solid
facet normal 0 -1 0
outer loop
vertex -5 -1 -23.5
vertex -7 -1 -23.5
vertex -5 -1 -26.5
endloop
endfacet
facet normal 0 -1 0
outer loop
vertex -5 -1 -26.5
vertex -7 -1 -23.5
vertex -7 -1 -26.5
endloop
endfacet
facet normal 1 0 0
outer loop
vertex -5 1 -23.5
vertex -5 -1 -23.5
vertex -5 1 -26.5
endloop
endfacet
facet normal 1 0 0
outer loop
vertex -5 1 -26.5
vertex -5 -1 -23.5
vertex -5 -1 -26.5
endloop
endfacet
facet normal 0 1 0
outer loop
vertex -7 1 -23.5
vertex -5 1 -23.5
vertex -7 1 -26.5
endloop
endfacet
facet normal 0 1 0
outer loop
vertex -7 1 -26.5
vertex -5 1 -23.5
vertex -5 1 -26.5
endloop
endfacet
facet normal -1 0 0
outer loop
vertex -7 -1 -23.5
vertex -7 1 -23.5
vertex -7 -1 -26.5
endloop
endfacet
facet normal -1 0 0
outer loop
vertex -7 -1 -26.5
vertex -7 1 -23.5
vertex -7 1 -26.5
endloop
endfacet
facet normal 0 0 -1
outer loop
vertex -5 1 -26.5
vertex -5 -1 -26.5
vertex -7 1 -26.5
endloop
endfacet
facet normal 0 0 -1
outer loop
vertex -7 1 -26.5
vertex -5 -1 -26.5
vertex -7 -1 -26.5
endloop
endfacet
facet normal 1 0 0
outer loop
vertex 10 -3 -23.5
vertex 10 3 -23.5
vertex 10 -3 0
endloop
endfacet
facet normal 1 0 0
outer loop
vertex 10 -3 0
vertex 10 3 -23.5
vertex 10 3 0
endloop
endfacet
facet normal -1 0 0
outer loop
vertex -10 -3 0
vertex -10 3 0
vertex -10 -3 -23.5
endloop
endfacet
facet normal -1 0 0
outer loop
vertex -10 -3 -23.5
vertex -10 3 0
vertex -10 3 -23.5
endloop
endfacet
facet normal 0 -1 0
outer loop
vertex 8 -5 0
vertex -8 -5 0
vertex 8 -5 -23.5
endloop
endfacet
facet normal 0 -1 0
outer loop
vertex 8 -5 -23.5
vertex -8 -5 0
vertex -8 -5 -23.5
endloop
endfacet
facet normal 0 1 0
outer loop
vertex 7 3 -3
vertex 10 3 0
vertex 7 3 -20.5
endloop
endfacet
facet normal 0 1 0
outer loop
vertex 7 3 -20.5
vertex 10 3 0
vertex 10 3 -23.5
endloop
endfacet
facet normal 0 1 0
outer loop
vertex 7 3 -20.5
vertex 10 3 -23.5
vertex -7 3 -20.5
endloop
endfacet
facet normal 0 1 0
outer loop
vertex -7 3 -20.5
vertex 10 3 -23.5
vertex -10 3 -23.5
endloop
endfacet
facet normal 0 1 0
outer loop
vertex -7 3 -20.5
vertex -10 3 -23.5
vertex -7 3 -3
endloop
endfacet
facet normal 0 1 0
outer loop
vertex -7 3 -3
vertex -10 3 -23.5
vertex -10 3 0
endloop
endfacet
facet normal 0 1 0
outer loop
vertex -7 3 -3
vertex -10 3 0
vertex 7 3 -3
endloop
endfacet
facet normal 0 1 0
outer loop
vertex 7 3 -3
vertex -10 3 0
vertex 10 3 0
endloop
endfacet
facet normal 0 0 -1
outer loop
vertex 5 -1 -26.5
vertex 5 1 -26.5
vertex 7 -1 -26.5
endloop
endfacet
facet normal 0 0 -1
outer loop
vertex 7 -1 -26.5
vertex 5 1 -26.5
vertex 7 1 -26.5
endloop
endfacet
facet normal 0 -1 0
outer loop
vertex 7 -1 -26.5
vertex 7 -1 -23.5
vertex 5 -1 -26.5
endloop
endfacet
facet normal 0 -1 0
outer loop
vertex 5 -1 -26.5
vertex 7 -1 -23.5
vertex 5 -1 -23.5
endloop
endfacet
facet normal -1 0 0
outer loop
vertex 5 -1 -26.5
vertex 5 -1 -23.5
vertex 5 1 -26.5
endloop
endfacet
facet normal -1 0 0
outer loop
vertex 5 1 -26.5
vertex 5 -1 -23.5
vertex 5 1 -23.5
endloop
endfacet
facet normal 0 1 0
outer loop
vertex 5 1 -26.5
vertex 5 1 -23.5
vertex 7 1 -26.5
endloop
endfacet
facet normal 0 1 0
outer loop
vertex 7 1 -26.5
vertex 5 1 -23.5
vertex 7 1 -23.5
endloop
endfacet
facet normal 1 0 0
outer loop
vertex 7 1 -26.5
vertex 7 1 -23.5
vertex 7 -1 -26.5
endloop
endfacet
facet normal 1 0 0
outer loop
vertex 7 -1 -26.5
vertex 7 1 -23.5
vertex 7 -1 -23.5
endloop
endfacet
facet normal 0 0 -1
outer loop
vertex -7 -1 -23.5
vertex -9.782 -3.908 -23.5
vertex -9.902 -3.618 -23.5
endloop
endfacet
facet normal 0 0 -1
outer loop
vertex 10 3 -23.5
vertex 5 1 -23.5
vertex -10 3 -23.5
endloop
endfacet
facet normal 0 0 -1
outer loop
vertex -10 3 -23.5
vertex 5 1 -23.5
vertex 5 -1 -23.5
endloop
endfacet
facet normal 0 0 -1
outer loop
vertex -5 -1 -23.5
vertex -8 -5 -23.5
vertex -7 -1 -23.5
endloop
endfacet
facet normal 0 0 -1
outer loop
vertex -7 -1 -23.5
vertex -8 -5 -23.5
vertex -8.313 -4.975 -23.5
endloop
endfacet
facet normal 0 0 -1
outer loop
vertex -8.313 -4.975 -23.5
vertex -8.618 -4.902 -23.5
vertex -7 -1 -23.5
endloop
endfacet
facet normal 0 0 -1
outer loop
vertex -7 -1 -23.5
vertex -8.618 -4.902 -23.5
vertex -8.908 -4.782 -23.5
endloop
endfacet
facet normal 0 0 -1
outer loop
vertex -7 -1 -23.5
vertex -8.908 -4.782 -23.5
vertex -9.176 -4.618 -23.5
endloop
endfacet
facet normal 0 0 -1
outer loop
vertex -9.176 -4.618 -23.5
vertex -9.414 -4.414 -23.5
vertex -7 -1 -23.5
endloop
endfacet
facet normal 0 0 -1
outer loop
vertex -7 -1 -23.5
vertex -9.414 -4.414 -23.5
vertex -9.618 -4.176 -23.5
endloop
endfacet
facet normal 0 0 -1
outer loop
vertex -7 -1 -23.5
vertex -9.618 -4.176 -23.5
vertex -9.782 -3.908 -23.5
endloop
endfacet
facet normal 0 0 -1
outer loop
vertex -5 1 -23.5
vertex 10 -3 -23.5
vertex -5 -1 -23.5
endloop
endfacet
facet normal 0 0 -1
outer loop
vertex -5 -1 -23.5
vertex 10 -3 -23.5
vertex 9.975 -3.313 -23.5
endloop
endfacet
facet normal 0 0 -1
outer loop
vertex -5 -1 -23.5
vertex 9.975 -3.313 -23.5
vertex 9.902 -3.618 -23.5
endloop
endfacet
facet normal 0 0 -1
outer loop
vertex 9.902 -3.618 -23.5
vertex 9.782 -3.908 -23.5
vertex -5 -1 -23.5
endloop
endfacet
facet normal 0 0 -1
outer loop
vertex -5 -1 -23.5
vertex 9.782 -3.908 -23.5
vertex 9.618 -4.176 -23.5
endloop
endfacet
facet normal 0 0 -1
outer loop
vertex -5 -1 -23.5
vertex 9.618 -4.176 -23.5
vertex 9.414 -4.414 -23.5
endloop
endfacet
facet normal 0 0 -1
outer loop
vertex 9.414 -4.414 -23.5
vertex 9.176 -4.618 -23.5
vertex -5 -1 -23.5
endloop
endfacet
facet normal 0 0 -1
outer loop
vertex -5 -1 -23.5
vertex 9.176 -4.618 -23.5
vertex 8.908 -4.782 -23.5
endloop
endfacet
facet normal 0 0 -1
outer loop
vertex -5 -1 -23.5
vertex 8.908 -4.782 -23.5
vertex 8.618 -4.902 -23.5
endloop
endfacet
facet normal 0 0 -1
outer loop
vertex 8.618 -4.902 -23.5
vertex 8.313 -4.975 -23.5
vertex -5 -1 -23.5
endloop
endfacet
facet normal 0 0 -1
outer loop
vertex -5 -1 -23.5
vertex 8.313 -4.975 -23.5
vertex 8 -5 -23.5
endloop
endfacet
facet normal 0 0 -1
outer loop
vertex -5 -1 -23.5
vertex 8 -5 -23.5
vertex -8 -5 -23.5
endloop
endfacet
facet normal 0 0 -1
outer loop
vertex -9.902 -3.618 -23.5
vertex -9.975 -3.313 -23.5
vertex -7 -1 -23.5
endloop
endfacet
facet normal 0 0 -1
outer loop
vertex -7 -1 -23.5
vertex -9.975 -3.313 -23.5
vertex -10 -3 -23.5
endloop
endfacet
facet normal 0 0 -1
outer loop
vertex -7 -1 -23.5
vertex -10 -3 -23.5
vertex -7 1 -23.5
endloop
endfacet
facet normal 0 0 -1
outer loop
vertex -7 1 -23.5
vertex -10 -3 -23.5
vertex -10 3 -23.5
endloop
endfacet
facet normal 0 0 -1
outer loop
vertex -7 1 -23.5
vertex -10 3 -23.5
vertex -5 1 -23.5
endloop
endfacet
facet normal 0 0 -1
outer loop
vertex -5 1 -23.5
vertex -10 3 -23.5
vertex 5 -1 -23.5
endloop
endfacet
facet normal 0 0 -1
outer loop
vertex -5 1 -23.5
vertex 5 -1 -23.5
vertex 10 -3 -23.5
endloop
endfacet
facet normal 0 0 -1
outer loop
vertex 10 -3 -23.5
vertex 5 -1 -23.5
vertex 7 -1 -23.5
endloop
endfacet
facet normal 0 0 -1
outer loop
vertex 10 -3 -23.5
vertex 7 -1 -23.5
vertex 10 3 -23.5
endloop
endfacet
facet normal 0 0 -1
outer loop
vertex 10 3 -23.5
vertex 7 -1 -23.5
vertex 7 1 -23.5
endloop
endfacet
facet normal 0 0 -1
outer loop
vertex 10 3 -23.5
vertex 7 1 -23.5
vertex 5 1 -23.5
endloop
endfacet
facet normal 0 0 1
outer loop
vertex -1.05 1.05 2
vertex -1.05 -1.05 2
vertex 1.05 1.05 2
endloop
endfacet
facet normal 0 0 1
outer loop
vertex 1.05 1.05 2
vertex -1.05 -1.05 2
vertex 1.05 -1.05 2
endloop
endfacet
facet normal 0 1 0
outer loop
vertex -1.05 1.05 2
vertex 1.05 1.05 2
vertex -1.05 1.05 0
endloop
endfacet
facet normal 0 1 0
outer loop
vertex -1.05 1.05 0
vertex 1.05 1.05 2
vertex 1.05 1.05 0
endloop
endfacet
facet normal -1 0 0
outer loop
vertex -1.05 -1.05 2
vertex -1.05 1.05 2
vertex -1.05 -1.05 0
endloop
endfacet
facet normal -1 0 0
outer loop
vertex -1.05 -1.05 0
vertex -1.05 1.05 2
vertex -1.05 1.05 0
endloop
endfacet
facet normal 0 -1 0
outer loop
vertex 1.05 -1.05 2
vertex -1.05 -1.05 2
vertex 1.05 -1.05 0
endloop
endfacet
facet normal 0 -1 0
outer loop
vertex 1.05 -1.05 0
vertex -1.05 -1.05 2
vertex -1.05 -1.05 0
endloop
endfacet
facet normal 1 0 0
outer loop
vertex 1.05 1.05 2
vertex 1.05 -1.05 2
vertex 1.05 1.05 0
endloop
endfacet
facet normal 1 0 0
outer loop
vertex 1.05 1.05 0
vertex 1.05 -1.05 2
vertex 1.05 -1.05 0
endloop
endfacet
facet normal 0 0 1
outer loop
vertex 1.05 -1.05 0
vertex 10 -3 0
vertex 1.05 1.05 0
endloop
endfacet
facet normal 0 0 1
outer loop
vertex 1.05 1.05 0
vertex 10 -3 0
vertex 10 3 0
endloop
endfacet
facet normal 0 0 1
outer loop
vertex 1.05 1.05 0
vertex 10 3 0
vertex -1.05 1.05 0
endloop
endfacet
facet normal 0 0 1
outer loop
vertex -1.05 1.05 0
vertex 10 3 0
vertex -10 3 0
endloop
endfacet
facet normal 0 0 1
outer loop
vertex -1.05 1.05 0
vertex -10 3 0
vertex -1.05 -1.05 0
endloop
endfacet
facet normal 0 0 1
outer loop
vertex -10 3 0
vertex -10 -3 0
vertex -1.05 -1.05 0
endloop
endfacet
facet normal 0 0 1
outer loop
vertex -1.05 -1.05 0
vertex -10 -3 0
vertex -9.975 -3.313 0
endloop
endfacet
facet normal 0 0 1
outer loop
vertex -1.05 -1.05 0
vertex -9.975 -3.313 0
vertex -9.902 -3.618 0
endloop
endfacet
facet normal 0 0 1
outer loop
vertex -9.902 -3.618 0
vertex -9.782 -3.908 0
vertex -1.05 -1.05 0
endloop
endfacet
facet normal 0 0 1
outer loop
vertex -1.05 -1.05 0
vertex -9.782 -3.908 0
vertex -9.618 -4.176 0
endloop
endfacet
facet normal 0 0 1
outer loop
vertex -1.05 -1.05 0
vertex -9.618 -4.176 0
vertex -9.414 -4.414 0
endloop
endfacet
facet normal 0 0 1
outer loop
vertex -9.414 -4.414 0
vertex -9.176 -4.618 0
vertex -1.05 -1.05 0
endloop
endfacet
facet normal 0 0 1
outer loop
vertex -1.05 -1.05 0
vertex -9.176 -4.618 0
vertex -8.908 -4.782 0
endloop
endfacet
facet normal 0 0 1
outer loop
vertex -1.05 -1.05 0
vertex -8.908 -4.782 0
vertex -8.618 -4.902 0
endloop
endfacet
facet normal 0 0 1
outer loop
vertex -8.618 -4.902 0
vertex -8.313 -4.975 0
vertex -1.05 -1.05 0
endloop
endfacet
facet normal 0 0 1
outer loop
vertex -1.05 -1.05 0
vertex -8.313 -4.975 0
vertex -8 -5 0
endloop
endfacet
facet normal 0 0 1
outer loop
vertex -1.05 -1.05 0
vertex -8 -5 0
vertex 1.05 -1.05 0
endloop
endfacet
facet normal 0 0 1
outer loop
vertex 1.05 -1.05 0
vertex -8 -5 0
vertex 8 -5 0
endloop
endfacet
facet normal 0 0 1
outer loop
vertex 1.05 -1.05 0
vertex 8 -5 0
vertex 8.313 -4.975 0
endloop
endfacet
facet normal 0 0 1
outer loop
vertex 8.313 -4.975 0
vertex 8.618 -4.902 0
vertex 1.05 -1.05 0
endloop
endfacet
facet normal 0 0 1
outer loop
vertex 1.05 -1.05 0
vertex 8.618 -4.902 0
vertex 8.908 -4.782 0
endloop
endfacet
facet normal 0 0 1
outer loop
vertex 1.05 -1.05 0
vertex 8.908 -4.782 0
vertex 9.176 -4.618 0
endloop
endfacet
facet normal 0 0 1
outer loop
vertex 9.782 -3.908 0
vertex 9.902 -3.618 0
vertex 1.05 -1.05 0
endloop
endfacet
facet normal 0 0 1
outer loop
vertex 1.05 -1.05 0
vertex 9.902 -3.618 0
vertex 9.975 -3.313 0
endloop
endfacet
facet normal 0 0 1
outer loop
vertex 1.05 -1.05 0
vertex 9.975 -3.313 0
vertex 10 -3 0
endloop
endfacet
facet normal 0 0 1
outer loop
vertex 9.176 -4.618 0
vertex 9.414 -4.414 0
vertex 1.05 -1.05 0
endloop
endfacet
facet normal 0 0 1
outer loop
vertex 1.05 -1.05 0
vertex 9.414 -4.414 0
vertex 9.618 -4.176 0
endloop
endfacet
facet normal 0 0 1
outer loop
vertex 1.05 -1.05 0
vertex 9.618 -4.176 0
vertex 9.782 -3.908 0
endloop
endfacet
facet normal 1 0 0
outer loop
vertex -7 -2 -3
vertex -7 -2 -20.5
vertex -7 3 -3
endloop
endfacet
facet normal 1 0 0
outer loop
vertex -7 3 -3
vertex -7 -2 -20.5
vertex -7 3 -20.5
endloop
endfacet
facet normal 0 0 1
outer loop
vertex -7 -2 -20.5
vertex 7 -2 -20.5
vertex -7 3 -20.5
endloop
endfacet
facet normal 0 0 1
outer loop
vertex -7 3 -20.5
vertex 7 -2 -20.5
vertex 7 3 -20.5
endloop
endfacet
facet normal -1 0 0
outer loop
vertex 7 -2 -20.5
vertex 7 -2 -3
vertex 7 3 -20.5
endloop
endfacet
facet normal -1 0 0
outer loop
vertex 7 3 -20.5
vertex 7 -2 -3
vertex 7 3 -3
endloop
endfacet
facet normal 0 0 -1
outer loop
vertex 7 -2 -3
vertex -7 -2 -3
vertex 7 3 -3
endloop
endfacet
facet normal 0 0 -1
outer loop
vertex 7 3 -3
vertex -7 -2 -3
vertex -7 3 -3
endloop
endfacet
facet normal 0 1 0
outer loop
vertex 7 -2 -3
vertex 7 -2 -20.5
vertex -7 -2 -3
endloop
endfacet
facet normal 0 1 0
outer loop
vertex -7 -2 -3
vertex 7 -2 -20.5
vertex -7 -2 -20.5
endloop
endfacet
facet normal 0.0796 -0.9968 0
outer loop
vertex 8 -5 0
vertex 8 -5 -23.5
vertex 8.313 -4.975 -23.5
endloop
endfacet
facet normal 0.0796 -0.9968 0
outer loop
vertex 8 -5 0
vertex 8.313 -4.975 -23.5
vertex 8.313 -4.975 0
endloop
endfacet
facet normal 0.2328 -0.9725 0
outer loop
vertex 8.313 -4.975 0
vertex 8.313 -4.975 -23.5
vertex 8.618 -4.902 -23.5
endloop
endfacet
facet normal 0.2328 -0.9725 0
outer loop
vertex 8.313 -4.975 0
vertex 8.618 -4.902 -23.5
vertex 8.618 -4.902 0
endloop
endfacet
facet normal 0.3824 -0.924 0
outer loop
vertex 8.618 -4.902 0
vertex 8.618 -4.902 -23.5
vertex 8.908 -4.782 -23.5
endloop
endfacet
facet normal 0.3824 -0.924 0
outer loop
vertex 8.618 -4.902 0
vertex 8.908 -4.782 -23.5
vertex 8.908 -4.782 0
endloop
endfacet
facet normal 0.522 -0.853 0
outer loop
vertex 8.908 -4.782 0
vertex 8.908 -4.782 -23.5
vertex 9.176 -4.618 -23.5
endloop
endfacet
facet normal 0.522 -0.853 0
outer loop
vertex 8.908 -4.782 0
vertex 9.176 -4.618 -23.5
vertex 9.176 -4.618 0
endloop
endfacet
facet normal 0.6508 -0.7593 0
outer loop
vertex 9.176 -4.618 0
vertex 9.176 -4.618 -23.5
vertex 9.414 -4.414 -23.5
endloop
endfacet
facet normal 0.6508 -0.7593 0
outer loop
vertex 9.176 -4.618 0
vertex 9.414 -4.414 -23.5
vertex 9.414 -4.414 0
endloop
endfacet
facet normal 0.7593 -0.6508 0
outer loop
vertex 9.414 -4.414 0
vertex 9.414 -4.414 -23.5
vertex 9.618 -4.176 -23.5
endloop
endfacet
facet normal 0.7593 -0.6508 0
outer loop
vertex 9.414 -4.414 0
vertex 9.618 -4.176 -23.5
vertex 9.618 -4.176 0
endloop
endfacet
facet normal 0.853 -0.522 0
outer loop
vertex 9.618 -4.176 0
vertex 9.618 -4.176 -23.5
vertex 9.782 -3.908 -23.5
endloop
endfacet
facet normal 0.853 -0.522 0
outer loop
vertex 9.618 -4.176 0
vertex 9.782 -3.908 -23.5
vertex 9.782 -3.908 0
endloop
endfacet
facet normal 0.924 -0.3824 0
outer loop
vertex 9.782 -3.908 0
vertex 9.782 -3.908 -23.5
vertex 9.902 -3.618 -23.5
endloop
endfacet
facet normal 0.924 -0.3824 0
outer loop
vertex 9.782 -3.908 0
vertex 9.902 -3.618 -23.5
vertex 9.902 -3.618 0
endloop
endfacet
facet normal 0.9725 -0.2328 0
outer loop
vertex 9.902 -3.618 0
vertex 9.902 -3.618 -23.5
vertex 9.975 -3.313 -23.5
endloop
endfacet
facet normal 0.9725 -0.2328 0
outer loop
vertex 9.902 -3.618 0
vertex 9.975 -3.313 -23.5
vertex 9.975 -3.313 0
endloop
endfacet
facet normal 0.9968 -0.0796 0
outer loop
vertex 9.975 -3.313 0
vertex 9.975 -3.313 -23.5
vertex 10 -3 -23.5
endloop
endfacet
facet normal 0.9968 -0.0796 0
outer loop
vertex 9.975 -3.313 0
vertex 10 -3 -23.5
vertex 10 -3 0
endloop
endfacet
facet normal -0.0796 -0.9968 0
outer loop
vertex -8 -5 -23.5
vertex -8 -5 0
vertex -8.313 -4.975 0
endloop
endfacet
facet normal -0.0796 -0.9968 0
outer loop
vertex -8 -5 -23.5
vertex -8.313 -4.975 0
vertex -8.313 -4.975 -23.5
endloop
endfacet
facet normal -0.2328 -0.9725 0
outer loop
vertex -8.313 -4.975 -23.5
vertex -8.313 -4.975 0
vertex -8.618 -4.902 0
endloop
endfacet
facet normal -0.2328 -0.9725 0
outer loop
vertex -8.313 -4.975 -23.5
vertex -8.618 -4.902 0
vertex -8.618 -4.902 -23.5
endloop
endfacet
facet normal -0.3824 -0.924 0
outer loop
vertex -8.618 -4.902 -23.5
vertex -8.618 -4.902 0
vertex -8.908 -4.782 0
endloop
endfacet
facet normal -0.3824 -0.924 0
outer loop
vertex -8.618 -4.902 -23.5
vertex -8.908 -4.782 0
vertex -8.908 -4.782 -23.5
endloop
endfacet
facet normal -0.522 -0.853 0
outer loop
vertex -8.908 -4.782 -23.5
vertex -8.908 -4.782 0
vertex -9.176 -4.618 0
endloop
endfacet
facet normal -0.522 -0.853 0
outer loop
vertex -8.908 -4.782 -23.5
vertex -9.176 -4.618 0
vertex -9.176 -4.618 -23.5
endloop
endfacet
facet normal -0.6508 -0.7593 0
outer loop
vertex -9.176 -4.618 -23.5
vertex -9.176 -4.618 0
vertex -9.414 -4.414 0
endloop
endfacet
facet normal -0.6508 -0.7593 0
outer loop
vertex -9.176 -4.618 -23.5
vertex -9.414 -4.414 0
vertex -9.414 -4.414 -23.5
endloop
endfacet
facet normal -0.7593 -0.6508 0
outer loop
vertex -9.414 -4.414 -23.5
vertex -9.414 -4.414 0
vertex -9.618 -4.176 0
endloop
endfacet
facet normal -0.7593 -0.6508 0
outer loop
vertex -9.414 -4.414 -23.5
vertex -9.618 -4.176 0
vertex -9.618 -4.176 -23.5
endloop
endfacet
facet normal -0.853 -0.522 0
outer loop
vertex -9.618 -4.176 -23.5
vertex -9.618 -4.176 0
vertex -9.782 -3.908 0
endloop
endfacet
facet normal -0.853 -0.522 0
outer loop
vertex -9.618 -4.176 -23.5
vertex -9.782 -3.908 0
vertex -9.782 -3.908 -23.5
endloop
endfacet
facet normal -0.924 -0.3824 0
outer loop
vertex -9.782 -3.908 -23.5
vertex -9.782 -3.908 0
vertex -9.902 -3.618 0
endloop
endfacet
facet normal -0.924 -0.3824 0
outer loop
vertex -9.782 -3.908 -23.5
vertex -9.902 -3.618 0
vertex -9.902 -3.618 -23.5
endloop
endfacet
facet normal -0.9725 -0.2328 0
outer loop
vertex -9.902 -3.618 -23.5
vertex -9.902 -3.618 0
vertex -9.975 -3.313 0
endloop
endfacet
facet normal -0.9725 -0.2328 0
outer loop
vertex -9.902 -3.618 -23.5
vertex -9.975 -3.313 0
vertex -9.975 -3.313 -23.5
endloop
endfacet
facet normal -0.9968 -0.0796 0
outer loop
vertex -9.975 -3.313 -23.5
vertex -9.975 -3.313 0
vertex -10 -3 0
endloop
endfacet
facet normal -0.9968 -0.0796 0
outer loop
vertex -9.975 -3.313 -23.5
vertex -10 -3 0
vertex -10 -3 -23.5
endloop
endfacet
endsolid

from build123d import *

# Parameters (mm, degrees)
SKETCH1_W                = 2.1
SKETCH1_H                = 2.1
BOSS_EXTRUDE1_DEPTH      = 2
SKETCH4_W                = 2.2
SKETCH4_H                = 2.2
BOSS_EXTRUDE3_DEPTH      = 2
SWEEP4_START             = -1.1
SWEEP4_DEPTH             = 2.2
SKETCH8_W                = 2.2
SKETCH8_H                = 2.2
SKETCH8_W_2              = 2
SKETCH8_H_2              = 2
CUT_EXTRUDE2_DEPTH       = 5
SKETCH9_W                = 2
SKETCH9_H                = 2
CUT_EXTRUDE3_DEPTH       = 2
BOSS_EXTRUDE4_DEPTH      = 3
BOSS_EXTRUDE4_DEPTH_BACK = 5
SKETCH10_W               = 20
SKETCH10_H               = 23.5
SKETCH11_W               = 14
SKETCH11_H               = 17.5
CUT_EXTRUDE4_DEPTH       = 5
FILLET1_R                = 2


# Read off the part's stored shape, not the designer's step: Sweep4
with BuildPart() as part:
    # Sketch1 → Boss-Extrude1 (new body)
    with BuildSketch(Plane.XY):
        Rectangle(SKETCH1_W, SKETCH1_H)
    extrude(amount=BOSS_EXTRUDE1_DEPTH)

    # Sketch4 → Boss-Extrude3 (add)
    with BuildSketch(Plane.XY):
        Rectangle(SKETCH4_W, SKETCH4_H)
    extrude(amount=-BOSS_EXTRUDE3_DEPTH)

    # Sweep4 outline → Sweep4 (add)
    with BuildSketch(Plane(origin=(0, 0, 0), x_dir=(1, 0, 0), z_dir=(0, 1, 0)).offset(SWEEP4_START)):
        with BuildLine():
            Line((7.09999865, 11.165148445), (7.09999919, 28.5))
            Line((7.09999919, 28.5), (4.89999919, 28.5))
            Line((4.89999919, 28.5), (4.89999865, 11.165148445))
            ThreePointArc((4.89999865, 11.165148445), (4.099633159, 8.481308894), (1.959999989, 6.674225732))
            ThreePointArc((1.959999989, 6.674225732), (-0.2669663, 4.793384792), (-1.1, 2))
            Line((-1.1, 2), (1.1, 2))
            ThreePointArc((1.1, 2), (1.573685829, 3.588395274), (2.839999687, 4.657893766))
            ThreePointArc((2.839999687, 4.657893766), (5.940285288, 7.276319376), (7.09999865, 11.165148445))
        make_face()
    sweep4 = extrude(amount=SWEEP4_DEPTH)

    # Mirror1: Sweep4 across plane
    add(sweep4.mirror(Plane(origin=(0, 0, 0), x_dir=(0, 0, 1), z_dir=(1, 0, 0))))

    # Sketch8 → Cut-Extrude2 (cut)
    with BuildSketch(Plane(origin=(0, 0, -28.5), x_dir=(-1, 0, 0), z_dir=(0, 0, -1))):
        with Locations((-5.99999919, 0)):
            Rectangle(SKETCH8_W, SKETCH8_H)
        with Locations((-5.99999919, 0)):
            Rectangle(SKETCH8_W_2, SKETCH8_H_2, mode=Mode.SUBTRACT)
    cut_extrude2 = extrude(amount=-CUT_EXTRUDE2_DEPTH, mode=Mode.SUBTRACT)

    # Sketch9 → Cut-Extrude3 (cut)
    with BuildSketch(Plane(origin=(0, 0, -28.5), x_dir=(-1, 0, 0), z_dir=(0, 0, -1))):
        with Locations((-5.99999919, 0)):
            Rectangle(SKETCH9_W, SKETCH9_H)
    cut_extrude3 = extrude(amount=-CUT_EXTRUDE3_DEPTH, mode=Mode.SUBTRACT)

    # Mirror2: Cut-Extrude2, Cut-Extrude3 across plane
    add(cut_extrude2.mirror(Plane(origin=(0, 0, 0), x_dir=(0, 0, 1), z_dir=(1, 0, 0))), mode=Mode.SUBTRACT)
    add(cut_extrude3.mirror(Plane(origin=(0, 0, 0), x_dir=(0, 0, 1), z_dir=(1, 0, 0))), mode=Mode.SUBTRACT)

    # Sketch10 → Boss-Extrude4 (add, two sides: drawn at the far end of the back side and taken through both)
    with BuildSketch(Plane(origin=(0, 0, 0), x_dir=(1, 0, 0), z_dir=(0, 1, 0)).offset(-BOSS_EXTRUDE4_DEPTH_BACK)):
        with Locations((0, 11.75)):
            Rectangle(SKETCH10_W, SKETCH10_H)
    extrude(amount=BOSS_EXTRUDE4_DEPTH + BOSS_EXTRUDE4_DEPTH_BACK)

    # Sketch11 → Cut-Extrude4 (cut)
    with BuildSketch(Plane(origin=(0, 3, 0), x_dir=(1, 0, 0), z_dir=(0, 1, 0))):
        with Locations((0, 11.75)):
            Rectangle(SKETCH11_W, SKETCH11_H)
    extrude(amount=-CUT_EXTRUDE4_DEPTH, mode=Mode.SUBTRACT)

    # Fillet1
    fillet1_edges = [part.edges().sort_by_distance(p)[0] for p in [
        (-10, -5, -11.75),
        (10, -5, -11.75),
    ]]
    fillet(fillet1_edges, radius=FILLET1_R)


solid = part.part
